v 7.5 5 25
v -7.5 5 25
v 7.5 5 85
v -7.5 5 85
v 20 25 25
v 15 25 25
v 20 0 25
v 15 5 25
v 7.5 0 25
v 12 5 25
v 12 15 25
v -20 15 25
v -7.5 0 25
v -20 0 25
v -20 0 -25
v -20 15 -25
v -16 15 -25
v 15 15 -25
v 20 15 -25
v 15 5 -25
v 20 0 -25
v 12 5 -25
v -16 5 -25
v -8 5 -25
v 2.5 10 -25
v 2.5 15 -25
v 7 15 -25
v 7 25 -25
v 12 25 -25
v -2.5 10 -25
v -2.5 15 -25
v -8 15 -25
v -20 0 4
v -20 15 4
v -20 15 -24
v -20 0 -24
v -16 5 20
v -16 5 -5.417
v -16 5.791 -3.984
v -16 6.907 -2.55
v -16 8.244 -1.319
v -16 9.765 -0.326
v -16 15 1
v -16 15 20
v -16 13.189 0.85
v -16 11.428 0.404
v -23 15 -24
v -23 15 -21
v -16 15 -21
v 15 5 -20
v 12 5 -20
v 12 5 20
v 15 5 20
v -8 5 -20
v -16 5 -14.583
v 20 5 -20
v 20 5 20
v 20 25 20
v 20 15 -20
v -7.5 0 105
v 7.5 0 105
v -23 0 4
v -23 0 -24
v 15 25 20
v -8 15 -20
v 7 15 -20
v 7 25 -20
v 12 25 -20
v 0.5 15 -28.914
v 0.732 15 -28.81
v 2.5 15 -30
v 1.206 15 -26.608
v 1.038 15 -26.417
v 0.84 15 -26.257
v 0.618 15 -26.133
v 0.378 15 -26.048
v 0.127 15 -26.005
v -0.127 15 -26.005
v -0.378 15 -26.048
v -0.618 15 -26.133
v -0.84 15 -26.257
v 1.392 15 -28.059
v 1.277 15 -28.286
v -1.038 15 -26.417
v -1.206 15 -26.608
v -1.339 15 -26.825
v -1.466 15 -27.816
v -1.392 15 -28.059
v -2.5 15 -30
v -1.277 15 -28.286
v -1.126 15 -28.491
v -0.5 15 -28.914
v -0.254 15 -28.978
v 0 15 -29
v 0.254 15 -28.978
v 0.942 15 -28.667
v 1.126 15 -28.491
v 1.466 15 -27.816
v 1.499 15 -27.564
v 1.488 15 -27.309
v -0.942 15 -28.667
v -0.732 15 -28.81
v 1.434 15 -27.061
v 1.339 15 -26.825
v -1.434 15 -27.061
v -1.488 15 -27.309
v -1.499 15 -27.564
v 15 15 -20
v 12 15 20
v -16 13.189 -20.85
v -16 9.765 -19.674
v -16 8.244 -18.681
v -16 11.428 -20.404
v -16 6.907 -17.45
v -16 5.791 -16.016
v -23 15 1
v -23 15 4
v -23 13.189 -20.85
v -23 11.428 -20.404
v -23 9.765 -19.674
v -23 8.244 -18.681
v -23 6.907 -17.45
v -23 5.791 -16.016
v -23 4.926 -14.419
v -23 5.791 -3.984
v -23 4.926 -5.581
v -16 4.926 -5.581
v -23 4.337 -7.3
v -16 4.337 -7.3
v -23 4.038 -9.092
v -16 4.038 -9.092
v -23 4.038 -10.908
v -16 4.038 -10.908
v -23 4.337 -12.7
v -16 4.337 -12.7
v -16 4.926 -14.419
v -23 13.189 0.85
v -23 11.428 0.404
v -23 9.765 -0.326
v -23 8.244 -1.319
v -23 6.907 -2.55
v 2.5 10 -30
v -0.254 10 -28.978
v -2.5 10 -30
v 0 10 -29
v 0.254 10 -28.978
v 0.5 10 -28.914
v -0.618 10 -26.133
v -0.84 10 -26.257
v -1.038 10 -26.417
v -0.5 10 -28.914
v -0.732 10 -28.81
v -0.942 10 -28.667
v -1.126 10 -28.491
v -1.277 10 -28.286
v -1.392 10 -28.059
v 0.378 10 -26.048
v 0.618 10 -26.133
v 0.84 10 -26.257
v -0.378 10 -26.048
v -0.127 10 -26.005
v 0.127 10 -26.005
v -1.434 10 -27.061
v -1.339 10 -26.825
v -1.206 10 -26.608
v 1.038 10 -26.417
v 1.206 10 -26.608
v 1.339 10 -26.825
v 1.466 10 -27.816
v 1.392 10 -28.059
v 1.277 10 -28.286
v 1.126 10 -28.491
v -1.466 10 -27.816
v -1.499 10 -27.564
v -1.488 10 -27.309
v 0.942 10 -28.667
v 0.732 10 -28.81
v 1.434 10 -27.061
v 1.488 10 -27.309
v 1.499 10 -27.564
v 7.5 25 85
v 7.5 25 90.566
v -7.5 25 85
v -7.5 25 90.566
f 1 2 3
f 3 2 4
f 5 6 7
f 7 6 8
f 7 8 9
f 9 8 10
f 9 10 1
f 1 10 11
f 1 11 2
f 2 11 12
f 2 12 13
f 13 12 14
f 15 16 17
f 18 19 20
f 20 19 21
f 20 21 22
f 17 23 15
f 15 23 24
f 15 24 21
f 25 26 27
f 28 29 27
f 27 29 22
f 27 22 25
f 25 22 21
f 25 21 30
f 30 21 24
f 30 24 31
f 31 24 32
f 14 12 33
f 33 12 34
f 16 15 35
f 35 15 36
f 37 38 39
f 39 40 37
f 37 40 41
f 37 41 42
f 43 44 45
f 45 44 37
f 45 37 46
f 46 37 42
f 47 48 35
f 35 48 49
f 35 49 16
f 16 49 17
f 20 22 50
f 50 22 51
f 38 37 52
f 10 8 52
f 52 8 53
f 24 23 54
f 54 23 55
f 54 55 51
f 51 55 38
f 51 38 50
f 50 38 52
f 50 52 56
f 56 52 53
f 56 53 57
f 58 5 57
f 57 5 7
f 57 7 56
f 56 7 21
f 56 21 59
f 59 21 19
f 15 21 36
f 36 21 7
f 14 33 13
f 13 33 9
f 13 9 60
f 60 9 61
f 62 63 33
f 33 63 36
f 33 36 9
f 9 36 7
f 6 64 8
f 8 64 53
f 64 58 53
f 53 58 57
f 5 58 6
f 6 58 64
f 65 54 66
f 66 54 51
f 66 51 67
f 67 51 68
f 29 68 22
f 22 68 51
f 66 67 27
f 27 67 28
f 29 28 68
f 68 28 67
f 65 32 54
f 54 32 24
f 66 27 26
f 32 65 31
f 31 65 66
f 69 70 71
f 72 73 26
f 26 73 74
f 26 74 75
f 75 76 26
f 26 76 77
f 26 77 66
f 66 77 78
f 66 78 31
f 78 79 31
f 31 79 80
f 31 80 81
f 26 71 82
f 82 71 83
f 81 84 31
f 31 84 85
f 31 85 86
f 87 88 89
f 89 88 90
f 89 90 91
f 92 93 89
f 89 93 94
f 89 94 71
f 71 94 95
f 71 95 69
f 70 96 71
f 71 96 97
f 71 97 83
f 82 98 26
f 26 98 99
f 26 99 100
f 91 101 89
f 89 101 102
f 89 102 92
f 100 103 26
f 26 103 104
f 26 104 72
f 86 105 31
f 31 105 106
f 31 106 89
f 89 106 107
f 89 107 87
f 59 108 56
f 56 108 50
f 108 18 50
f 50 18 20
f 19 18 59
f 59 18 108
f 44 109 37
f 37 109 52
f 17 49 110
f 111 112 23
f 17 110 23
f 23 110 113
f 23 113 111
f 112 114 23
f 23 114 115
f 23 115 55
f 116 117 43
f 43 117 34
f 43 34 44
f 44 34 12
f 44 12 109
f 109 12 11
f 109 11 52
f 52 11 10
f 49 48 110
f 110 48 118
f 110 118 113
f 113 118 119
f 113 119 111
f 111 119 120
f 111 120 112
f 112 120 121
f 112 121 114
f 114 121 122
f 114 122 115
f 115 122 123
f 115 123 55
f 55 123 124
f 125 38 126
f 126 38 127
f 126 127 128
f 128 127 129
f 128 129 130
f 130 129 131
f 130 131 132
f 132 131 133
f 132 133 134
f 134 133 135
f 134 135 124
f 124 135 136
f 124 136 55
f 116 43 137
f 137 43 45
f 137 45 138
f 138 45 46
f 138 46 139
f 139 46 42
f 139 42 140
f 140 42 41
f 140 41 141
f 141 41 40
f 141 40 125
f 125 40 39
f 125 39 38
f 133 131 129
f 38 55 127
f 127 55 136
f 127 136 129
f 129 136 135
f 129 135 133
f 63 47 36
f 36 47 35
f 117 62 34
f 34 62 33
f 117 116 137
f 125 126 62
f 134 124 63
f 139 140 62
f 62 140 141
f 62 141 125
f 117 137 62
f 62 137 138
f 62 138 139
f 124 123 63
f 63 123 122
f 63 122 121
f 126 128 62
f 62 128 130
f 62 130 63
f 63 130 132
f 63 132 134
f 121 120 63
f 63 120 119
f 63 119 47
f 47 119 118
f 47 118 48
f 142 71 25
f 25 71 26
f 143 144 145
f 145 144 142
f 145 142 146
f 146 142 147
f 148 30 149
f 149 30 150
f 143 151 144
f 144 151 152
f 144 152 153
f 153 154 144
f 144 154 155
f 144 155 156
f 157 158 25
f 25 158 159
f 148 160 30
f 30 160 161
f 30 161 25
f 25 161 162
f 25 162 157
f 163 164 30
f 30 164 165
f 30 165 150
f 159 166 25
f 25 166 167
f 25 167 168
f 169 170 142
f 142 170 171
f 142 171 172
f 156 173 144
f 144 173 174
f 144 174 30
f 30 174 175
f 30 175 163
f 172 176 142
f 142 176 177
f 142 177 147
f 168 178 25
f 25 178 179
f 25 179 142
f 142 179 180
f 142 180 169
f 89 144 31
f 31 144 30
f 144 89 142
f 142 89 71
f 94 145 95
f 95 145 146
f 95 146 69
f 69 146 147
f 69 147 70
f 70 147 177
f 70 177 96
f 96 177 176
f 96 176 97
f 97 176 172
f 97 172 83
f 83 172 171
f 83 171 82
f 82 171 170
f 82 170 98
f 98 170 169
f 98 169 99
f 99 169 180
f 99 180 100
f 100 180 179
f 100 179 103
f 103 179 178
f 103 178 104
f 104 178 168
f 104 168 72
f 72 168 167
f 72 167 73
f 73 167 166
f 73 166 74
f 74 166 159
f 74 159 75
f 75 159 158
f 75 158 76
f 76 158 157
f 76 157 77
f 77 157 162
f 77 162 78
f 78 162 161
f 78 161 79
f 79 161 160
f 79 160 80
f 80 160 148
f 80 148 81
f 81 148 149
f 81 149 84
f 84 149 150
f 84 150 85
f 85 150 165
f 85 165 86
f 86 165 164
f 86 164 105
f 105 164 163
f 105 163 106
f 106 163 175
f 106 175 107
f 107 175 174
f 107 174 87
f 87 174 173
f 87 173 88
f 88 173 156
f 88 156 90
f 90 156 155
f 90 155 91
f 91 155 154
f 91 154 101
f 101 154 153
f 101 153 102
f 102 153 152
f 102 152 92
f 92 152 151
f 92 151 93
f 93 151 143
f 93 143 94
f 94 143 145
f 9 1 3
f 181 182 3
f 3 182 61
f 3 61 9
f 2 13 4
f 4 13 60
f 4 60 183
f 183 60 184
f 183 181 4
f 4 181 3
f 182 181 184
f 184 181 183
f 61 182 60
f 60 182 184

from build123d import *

# Parameters (mm, degrees)
SKETCH1_W            = 40
SKETCH1_H            = 50
BOSS_EXTRUDE1_DEPTH  = 5
SKETCH3_W            = 5
SKETCH3_H            = 5
BOSS_EXTRUDE5_DEPTH  = 20
SKETCH3_3_W          = 5
SKETCH3_3_H          = 5
SKETCH3_3_W_2        = 15
BOSS_EXTRUDE6_DEPTH  = 10
CUT_EXTRUDE3_DEPTH   = 4
BOSS_EXTRUDE9_START  = 3
BOSS_EXTRUDE9_DEPTH  = 3
SKETCH12_W           = 5
SKETCH12_H           = 5
BOSS_EXTRUDE10_DEPTH = 5
SKETCH13_R           = 1.5
CUT_EXTRUDE4_DEPTH   = 5
SKETCH14_W           = 15
SKETCH14_H           = 5
BOSS_EXTRUDE11_DEPTH = 80
SKETCH15_W           = 15
SKETCH15_H           = 20
BOSS_EXTRUDE13_DEPTH = 20
CUT_EXTRUDE7_DEPTH   = 15


with BuildPart() as part:
    # Sketch1 → Boss-Extrude1 (new body)
    with BuildSketch(Plane(origin=(0, 0, 0), x_dir=(1, 0, 0), z_dir=(0, 1, 0))):
        Rectangle(SKETCH1_W, SKETCH1_H)
    extrude(amount=BOSS_EXTRUDE1_DEPTH)

    # Sketch3 → Boss-Extrude5 (add)
    with BuildSketch(Plane(origin=(0, 5, 0), x_dir=(1, 0, 0), z_dir=(0, 1, 0))):
        with Locations((9.5, 22.5)):
            Rectangle(SKETCH3_W, SKETCH3_H)
        with Locations((17.5, -22.5)):
            Rectangle(SKETCH3_W, SKETCH3_H)
    extrude(amount=BOSS_EXTRUDE5_DEPTH)

    # Sketch3<3> → Boss-Extrude6 (add)
    with BuildSketch(Plane(origin=(0, 5, 0), x_dir=(1, 0, 0), z_dir=(0, 1, 0))):
        with Locations((17.5, 22.5)):
            Rectangle(SKETCH3_3_W, SKETCH3_3_H)
        with Locations((-0.5, 22.5)):
            Rectangle(SKETCH3_3_W_2, SKETCH3_3_H)
        Polygon((-16, -20), (-16, 25), (-20, 25), (-20, -25), (12, -25), (12, -20), align=None)
    extrude(amount=BOSS_EXTRUDE6_DEPTH)

    # Sketch8 → Cut-Extrude3 (cut)
    with BuildSketch(Plane.ZY.offset(20)):
        with BuildLine():
            Line((1, 15), (-21, 15))
            ThreePointArc((-21, 15), (-10, 4), (1, 15))
        make_face()
    extrude(amount=-CUT_EXTRUDE3_DEPTH, mode=Mode.SUBTRACT)

    # Sketch10 → Boss-Extrude9 (add)
    with BuildSketch(Plane.ZY.offset(20).offset(BOSS_EXTRUDE9_START)):
        with BuildLine():
            Line((1, 15), (4, 15))
            Line((4, 15), (4, 0))
            Line((4, 0), (-24, 0))
            Line((-24, 0), (-24, 15))
            Line((-24, 15), (-21, 15))
            ThreePointArc((-21, 15), (-10, 4), (1, 15))
        make_face()
    extrude(amount=-BOSS_EXTRUDE9_DEPTH)

    # Sketch12 → Boss-Extrude10 (add)
    with BuildSketch(Plane(origin=(0, 0, -25), x_dir=(-1, 0, 0), z_dir=(0, 0, -1))):
        with Locations((0, 12.5)):
            Rectangle(SKETCH12_W, SKETCH12_H)
    extrude(amount=BOSS_EXTRUDE10_DEPTH)

    # Sketch13 → Cut-Extrude4 (cut)
    with BuildSketch(Plane.XZ.offset(-10)):
        with Locations((0, -27.5)):
            Circle(SKETCH13_R)
    extrude(amount=-CUT_EXTRUDE4_DEPTH, mode=Mode.SUBTRACT)

    # Sketch14 → Boss-Extrude11 (add)
    with BuildSketch(Plane.XY.offset(25)):
        with Locations((0, 2.5)):
            Rectangle(SKETCH14_W, SKETCH14_H)
    extrude(amount=BOSS_EXTRUDE11_DEPTH)

    # Sketch15 → Boss-Extrude13 (add)
    with BuildSketch(Plane(origin=(0, 5, 0), x_dir=(1, 0, 0), z_dir=(0, 1, 0))):
        with Locations((0, -95)):
            Rectangle(SKETCH15_W, SKETCH15_H)
    extrude(amount=BOSS_EXTRUDE13_DEPTH)

    # Sketch18 → Cut-Extrude7 (cut)
    with BuildSketch(Plane.ZY.offset(7.5)):
        Polygon((105, 0), (90.56624327, 25), (105, 25), align=None)
    extrude(amount=-CUT_EXTRUDE7_DEPTH, mode=Mode.SUBTRACT)


solid = part.part
